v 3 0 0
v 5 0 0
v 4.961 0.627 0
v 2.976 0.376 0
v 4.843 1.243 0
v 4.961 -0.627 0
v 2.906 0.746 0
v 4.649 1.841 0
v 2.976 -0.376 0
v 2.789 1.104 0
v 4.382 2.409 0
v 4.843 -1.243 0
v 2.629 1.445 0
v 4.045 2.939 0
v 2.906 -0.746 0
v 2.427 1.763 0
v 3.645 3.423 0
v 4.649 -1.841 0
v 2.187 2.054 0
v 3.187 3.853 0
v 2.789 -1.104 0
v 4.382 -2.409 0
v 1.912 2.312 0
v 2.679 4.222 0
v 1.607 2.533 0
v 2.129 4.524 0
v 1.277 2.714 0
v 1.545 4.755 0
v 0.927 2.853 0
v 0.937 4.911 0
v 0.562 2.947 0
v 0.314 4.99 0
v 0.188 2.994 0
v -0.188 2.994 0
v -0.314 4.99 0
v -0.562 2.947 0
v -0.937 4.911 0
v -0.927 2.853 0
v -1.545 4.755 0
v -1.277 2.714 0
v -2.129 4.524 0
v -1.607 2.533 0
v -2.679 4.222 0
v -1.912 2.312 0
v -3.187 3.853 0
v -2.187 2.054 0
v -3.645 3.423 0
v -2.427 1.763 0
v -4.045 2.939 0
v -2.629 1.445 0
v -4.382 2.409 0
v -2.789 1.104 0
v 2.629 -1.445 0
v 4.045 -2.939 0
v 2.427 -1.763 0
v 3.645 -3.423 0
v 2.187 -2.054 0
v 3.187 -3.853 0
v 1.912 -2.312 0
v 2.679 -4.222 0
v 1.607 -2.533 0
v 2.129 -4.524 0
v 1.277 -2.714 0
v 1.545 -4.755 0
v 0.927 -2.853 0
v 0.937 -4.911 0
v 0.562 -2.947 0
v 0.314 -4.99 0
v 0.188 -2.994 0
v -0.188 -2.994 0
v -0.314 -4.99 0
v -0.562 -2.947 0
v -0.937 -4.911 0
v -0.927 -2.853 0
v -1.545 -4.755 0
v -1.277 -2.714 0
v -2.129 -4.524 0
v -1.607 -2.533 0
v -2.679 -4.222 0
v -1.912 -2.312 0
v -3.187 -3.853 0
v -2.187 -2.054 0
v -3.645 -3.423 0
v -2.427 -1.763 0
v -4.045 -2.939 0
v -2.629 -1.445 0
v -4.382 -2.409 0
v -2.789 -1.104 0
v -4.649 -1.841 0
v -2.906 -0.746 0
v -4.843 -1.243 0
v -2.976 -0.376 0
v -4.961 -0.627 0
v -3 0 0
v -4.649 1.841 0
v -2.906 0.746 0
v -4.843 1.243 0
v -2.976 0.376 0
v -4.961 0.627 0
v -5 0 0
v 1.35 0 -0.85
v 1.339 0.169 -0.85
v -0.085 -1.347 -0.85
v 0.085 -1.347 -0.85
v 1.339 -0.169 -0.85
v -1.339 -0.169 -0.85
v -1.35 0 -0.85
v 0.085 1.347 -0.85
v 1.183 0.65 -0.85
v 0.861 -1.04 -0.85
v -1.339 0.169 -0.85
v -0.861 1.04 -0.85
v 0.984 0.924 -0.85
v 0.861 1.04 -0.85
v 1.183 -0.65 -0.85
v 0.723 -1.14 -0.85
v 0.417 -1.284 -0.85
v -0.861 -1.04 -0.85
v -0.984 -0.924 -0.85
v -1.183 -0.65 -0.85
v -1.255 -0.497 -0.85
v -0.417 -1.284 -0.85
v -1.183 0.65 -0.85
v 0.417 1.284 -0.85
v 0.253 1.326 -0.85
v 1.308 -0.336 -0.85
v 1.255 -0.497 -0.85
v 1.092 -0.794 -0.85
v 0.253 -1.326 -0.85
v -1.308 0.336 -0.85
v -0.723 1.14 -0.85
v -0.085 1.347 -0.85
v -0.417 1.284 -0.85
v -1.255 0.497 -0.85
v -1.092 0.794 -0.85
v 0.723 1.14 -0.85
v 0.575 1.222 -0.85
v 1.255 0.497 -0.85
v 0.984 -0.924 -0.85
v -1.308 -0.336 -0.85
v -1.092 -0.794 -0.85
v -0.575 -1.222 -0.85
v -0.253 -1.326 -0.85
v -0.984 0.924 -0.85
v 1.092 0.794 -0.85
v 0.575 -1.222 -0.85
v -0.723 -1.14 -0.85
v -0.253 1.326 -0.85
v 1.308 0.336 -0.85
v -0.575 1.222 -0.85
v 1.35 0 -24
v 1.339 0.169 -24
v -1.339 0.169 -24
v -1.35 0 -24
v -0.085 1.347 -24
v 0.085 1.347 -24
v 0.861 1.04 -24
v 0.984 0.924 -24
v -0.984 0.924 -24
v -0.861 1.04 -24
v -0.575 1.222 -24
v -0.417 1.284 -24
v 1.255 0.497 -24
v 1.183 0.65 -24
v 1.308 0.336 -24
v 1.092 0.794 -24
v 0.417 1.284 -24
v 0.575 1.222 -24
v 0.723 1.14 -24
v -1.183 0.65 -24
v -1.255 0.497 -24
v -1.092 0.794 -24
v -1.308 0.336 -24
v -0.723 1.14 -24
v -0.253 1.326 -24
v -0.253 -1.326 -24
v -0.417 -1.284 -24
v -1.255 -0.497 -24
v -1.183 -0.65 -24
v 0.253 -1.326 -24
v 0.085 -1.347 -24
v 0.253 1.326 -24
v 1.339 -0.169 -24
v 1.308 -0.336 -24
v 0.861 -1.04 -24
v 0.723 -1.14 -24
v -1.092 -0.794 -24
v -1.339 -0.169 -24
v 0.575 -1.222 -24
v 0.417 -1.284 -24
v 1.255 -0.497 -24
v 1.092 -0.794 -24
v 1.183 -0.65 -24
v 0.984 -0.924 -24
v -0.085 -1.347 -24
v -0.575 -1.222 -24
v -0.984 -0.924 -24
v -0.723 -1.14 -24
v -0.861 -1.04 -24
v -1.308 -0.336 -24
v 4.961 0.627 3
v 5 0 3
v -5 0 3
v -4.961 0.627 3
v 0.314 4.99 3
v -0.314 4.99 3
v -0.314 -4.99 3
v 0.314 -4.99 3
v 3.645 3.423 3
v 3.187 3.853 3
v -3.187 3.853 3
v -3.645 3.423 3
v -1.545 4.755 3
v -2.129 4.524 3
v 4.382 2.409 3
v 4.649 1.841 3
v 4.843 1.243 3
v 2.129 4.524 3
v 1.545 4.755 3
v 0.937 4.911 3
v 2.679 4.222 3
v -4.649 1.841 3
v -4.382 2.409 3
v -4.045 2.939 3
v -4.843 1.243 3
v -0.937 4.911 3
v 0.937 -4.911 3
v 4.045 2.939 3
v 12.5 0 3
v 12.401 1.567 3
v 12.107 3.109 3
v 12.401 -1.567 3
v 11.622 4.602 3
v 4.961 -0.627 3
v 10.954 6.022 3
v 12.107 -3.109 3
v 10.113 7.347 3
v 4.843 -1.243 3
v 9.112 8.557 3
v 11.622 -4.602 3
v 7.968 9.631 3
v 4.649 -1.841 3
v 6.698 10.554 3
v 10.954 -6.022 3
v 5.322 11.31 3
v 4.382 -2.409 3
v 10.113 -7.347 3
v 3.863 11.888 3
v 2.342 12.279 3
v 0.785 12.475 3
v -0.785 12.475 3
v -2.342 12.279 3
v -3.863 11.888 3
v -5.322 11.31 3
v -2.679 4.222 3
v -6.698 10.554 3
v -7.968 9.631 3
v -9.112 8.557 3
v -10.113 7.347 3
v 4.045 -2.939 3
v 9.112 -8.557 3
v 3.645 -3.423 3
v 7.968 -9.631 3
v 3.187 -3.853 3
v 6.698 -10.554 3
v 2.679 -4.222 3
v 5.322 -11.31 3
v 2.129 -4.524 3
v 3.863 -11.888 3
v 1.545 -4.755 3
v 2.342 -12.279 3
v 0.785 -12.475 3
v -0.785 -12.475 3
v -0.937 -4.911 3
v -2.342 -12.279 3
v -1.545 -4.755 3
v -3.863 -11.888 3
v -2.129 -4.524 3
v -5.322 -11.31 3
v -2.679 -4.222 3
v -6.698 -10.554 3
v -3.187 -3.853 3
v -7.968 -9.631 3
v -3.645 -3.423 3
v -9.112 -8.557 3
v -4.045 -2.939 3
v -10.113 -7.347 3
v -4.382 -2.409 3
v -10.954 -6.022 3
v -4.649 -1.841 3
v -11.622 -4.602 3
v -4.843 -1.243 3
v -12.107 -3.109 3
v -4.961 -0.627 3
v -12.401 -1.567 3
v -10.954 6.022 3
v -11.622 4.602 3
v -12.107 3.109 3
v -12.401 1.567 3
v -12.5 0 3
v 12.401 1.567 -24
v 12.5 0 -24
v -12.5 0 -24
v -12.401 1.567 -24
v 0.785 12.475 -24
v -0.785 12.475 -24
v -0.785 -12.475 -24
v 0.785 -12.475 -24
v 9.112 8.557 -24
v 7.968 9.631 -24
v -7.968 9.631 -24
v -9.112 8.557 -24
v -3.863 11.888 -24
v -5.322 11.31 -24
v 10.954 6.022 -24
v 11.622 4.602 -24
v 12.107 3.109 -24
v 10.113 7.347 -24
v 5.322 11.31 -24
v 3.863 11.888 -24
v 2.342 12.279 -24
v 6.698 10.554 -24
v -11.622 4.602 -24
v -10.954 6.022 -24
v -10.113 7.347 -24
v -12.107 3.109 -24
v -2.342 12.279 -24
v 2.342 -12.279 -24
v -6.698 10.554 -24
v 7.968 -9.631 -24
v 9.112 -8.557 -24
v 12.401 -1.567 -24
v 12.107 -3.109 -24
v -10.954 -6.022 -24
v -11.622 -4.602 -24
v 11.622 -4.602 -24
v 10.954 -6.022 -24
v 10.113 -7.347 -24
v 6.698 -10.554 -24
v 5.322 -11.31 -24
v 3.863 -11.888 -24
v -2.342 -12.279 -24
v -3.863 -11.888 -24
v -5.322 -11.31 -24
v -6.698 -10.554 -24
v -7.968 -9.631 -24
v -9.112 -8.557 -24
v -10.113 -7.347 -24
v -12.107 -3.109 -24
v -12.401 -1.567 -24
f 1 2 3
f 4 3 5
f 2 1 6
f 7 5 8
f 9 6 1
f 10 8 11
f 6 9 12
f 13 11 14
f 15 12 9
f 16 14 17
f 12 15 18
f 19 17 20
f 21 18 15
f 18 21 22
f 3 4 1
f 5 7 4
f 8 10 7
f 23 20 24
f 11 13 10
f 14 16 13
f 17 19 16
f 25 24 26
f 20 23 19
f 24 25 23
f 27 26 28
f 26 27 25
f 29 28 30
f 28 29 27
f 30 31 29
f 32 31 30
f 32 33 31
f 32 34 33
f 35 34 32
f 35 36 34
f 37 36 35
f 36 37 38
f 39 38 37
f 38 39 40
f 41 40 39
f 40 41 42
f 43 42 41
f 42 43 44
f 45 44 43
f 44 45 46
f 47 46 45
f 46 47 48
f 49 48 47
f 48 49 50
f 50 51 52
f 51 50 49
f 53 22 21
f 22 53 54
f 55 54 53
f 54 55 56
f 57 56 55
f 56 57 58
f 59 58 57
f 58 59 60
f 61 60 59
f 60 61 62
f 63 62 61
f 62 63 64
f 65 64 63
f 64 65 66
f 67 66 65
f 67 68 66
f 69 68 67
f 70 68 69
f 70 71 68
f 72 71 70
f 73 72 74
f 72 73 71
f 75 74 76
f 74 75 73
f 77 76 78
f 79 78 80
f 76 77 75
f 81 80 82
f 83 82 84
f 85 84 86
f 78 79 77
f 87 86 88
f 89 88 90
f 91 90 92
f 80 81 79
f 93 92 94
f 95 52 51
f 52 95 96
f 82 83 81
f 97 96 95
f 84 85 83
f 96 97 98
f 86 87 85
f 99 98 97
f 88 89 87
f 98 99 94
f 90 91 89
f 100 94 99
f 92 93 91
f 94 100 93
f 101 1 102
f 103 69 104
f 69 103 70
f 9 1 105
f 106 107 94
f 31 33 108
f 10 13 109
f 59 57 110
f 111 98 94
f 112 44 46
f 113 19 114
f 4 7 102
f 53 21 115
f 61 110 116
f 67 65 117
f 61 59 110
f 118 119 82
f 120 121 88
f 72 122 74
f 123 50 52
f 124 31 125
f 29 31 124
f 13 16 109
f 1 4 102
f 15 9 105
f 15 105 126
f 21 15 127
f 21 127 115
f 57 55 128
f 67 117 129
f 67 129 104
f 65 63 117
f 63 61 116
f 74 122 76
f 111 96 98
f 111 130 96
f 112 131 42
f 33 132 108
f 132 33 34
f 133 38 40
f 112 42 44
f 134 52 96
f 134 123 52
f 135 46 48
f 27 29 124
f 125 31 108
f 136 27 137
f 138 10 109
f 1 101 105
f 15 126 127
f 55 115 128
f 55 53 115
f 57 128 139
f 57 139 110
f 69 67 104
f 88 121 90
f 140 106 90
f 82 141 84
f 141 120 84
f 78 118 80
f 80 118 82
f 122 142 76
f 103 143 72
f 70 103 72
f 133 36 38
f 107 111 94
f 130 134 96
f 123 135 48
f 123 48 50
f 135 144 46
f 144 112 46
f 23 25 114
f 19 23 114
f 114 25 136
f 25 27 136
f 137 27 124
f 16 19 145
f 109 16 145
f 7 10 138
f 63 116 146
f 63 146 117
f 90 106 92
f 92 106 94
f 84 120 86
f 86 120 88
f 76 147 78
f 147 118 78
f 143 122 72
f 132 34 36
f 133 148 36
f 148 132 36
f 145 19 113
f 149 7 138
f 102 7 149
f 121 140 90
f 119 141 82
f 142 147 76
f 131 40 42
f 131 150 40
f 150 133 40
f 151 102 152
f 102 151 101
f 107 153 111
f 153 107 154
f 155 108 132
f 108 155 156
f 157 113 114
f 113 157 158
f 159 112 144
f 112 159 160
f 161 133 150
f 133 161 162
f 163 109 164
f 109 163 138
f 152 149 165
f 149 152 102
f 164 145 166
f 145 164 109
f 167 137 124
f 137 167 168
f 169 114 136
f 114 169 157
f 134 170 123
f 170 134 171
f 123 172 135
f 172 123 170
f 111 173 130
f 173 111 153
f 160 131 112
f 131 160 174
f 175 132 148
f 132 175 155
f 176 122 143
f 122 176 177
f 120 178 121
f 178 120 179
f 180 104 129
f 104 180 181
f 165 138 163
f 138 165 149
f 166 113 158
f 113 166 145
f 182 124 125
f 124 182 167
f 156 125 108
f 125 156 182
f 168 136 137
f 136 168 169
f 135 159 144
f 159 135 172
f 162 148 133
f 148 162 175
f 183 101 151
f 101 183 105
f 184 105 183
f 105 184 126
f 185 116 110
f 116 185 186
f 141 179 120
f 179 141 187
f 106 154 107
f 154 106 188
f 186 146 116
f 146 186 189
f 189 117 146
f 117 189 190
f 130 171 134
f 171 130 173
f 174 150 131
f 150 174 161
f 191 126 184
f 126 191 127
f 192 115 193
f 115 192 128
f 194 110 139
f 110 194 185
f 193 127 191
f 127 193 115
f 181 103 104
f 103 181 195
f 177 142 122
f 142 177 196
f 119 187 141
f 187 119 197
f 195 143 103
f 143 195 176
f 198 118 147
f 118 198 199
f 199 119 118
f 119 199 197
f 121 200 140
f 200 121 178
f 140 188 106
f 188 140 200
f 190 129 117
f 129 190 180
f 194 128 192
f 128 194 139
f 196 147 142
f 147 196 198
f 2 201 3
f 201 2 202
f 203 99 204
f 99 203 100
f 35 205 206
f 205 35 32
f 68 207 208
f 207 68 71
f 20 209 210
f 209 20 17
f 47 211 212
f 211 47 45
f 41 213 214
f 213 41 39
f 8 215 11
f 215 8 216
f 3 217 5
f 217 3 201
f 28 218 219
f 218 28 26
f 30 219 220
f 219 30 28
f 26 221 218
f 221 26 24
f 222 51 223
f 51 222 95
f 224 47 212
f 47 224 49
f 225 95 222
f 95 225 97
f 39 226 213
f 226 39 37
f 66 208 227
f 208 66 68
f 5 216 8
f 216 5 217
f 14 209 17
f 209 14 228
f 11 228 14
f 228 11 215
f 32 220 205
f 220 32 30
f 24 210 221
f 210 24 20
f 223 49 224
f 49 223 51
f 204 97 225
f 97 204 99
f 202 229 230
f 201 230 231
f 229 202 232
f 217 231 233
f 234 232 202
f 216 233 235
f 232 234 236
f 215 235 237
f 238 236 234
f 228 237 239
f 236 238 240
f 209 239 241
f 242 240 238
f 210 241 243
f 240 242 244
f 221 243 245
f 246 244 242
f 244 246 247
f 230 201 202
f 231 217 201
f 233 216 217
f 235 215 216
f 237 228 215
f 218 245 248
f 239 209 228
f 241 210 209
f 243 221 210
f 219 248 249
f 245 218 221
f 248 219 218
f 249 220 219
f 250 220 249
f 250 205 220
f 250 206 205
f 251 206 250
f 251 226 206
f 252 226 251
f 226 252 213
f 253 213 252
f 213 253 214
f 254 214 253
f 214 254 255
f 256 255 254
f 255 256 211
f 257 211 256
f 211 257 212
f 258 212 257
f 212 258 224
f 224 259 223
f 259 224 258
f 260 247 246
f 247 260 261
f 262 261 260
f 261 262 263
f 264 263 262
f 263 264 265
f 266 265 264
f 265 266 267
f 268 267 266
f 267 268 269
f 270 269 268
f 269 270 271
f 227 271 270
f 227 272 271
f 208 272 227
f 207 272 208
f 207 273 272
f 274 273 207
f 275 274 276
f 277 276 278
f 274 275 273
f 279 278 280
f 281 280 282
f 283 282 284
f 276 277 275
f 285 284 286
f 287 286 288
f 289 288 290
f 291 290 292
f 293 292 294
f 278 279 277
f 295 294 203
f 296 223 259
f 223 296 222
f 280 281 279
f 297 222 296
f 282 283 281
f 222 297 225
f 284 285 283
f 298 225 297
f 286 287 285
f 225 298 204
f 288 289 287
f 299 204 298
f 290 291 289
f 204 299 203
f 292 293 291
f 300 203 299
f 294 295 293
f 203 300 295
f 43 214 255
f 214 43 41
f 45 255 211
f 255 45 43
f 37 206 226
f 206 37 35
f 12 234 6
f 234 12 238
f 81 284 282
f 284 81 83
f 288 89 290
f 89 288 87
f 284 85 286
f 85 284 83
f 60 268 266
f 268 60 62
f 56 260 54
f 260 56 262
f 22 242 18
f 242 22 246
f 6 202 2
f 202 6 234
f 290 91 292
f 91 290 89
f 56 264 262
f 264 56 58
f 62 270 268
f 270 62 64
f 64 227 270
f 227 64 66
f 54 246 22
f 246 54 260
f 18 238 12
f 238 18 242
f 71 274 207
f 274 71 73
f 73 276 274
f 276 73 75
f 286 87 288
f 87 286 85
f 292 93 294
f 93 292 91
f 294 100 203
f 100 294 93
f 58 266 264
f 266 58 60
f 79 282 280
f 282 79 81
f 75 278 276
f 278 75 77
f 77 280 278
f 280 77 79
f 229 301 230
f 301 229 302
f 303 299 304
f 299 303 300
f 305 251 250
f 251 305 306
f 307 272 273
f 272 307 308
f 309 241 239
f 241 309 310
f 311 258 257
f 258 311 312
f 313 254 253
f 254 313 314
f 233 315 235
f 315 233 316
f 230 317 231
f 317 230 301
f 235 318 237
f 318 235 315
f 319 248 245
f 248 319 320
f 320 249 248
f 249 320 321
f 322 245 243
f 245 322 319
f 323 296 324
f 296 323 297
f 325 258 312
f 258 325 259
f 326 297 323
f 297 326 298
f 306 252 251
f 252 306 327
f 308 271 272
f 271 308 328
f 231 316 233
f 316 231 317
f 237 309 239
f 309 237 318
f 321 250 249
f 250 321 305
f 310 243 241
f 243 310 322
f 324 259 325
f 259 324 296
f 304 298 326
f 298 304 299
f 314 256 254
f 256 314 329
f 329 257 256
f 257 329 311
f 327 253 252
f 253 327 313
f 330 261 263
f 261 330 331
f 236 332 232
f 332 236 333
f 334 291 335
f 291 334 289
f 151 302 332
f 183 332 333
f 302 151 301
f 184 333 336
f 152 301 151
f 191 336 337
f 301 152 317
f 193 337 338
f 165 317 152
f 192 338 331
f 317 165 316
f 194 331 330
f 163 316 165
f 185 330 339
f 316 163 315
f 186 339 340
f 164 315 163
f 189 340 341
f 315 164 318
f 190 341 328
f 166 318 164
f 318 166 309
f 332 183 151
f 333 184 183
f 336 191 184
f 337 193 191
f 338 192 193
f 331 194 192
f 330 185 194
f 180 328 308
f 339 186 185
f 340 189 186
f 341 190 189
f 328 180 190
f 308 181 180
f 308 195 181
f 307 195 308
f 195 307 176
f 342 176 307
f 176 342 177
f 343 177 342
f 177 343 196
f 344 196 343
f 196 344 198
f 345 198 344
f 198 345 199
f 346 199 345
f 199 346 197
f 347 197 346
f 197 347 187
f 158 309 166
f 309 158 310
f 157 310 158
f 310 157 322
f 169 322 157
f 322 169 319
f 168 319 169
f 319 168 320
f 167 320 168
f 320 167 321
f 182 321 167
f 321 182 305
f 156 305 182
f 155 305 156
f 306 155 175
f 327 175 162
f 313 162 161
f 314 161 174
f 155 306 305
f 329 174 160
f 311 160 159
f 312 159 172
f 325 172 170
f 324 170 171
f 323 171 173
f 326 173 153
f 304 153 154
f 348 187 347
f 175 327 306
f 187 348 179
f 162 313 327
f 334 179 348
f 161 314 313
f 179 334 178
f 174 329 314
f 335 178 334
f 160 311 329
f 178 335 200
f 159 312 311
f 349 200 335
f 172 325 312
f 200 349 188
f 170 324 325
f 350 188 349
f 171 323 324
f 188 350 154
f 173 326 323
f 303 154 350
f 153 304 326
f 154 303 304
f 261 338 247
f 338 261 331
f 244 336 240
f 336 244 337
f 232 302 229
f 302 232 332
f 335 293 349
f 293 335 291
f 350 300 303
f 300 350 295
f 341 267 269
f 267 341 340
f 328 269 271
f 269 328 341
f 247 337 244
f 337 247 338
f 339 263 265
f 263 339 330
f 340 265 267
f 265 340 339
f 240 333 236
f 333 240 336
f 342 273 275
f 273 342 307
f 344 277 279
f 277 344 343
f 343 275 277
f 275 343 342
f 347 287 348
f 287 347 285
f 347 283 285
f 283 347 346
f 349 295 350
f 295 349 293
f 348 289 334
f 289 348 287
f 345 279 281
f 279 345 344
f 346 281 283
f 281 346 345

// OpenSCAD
$fn = 50;

difference() {
	union() {
		translate(v = [0, 0, -24.0]) {
			cylinder(h = 27, r = 12.5);
		}
	}
	union() {
		translate(v = [0, 0, 0]) {
			rotate(a = [0, 0, 0]) {
				difference() {
					union() {
						translate(v = [0, 0, -27.0]) {
							cylinder(h = 27, r = 1.0);
						}
						translate(v = [0, 0, -0.85]) {
							cylinder(h = 0.85, r1 = 1.35, r2 = 3.0);
						}
						translate(v = [0, 0, -27.0]) {
							cylinder(h = 27, r = 1.35);
						}
						translate(v = [0, 0, -27.0]) {
							cylinder(h = 27, r = 1.0);
						}
					}
					union();
				}
			}
		}
		#cylinder(h = 3, r = 5.0);
	}
}
